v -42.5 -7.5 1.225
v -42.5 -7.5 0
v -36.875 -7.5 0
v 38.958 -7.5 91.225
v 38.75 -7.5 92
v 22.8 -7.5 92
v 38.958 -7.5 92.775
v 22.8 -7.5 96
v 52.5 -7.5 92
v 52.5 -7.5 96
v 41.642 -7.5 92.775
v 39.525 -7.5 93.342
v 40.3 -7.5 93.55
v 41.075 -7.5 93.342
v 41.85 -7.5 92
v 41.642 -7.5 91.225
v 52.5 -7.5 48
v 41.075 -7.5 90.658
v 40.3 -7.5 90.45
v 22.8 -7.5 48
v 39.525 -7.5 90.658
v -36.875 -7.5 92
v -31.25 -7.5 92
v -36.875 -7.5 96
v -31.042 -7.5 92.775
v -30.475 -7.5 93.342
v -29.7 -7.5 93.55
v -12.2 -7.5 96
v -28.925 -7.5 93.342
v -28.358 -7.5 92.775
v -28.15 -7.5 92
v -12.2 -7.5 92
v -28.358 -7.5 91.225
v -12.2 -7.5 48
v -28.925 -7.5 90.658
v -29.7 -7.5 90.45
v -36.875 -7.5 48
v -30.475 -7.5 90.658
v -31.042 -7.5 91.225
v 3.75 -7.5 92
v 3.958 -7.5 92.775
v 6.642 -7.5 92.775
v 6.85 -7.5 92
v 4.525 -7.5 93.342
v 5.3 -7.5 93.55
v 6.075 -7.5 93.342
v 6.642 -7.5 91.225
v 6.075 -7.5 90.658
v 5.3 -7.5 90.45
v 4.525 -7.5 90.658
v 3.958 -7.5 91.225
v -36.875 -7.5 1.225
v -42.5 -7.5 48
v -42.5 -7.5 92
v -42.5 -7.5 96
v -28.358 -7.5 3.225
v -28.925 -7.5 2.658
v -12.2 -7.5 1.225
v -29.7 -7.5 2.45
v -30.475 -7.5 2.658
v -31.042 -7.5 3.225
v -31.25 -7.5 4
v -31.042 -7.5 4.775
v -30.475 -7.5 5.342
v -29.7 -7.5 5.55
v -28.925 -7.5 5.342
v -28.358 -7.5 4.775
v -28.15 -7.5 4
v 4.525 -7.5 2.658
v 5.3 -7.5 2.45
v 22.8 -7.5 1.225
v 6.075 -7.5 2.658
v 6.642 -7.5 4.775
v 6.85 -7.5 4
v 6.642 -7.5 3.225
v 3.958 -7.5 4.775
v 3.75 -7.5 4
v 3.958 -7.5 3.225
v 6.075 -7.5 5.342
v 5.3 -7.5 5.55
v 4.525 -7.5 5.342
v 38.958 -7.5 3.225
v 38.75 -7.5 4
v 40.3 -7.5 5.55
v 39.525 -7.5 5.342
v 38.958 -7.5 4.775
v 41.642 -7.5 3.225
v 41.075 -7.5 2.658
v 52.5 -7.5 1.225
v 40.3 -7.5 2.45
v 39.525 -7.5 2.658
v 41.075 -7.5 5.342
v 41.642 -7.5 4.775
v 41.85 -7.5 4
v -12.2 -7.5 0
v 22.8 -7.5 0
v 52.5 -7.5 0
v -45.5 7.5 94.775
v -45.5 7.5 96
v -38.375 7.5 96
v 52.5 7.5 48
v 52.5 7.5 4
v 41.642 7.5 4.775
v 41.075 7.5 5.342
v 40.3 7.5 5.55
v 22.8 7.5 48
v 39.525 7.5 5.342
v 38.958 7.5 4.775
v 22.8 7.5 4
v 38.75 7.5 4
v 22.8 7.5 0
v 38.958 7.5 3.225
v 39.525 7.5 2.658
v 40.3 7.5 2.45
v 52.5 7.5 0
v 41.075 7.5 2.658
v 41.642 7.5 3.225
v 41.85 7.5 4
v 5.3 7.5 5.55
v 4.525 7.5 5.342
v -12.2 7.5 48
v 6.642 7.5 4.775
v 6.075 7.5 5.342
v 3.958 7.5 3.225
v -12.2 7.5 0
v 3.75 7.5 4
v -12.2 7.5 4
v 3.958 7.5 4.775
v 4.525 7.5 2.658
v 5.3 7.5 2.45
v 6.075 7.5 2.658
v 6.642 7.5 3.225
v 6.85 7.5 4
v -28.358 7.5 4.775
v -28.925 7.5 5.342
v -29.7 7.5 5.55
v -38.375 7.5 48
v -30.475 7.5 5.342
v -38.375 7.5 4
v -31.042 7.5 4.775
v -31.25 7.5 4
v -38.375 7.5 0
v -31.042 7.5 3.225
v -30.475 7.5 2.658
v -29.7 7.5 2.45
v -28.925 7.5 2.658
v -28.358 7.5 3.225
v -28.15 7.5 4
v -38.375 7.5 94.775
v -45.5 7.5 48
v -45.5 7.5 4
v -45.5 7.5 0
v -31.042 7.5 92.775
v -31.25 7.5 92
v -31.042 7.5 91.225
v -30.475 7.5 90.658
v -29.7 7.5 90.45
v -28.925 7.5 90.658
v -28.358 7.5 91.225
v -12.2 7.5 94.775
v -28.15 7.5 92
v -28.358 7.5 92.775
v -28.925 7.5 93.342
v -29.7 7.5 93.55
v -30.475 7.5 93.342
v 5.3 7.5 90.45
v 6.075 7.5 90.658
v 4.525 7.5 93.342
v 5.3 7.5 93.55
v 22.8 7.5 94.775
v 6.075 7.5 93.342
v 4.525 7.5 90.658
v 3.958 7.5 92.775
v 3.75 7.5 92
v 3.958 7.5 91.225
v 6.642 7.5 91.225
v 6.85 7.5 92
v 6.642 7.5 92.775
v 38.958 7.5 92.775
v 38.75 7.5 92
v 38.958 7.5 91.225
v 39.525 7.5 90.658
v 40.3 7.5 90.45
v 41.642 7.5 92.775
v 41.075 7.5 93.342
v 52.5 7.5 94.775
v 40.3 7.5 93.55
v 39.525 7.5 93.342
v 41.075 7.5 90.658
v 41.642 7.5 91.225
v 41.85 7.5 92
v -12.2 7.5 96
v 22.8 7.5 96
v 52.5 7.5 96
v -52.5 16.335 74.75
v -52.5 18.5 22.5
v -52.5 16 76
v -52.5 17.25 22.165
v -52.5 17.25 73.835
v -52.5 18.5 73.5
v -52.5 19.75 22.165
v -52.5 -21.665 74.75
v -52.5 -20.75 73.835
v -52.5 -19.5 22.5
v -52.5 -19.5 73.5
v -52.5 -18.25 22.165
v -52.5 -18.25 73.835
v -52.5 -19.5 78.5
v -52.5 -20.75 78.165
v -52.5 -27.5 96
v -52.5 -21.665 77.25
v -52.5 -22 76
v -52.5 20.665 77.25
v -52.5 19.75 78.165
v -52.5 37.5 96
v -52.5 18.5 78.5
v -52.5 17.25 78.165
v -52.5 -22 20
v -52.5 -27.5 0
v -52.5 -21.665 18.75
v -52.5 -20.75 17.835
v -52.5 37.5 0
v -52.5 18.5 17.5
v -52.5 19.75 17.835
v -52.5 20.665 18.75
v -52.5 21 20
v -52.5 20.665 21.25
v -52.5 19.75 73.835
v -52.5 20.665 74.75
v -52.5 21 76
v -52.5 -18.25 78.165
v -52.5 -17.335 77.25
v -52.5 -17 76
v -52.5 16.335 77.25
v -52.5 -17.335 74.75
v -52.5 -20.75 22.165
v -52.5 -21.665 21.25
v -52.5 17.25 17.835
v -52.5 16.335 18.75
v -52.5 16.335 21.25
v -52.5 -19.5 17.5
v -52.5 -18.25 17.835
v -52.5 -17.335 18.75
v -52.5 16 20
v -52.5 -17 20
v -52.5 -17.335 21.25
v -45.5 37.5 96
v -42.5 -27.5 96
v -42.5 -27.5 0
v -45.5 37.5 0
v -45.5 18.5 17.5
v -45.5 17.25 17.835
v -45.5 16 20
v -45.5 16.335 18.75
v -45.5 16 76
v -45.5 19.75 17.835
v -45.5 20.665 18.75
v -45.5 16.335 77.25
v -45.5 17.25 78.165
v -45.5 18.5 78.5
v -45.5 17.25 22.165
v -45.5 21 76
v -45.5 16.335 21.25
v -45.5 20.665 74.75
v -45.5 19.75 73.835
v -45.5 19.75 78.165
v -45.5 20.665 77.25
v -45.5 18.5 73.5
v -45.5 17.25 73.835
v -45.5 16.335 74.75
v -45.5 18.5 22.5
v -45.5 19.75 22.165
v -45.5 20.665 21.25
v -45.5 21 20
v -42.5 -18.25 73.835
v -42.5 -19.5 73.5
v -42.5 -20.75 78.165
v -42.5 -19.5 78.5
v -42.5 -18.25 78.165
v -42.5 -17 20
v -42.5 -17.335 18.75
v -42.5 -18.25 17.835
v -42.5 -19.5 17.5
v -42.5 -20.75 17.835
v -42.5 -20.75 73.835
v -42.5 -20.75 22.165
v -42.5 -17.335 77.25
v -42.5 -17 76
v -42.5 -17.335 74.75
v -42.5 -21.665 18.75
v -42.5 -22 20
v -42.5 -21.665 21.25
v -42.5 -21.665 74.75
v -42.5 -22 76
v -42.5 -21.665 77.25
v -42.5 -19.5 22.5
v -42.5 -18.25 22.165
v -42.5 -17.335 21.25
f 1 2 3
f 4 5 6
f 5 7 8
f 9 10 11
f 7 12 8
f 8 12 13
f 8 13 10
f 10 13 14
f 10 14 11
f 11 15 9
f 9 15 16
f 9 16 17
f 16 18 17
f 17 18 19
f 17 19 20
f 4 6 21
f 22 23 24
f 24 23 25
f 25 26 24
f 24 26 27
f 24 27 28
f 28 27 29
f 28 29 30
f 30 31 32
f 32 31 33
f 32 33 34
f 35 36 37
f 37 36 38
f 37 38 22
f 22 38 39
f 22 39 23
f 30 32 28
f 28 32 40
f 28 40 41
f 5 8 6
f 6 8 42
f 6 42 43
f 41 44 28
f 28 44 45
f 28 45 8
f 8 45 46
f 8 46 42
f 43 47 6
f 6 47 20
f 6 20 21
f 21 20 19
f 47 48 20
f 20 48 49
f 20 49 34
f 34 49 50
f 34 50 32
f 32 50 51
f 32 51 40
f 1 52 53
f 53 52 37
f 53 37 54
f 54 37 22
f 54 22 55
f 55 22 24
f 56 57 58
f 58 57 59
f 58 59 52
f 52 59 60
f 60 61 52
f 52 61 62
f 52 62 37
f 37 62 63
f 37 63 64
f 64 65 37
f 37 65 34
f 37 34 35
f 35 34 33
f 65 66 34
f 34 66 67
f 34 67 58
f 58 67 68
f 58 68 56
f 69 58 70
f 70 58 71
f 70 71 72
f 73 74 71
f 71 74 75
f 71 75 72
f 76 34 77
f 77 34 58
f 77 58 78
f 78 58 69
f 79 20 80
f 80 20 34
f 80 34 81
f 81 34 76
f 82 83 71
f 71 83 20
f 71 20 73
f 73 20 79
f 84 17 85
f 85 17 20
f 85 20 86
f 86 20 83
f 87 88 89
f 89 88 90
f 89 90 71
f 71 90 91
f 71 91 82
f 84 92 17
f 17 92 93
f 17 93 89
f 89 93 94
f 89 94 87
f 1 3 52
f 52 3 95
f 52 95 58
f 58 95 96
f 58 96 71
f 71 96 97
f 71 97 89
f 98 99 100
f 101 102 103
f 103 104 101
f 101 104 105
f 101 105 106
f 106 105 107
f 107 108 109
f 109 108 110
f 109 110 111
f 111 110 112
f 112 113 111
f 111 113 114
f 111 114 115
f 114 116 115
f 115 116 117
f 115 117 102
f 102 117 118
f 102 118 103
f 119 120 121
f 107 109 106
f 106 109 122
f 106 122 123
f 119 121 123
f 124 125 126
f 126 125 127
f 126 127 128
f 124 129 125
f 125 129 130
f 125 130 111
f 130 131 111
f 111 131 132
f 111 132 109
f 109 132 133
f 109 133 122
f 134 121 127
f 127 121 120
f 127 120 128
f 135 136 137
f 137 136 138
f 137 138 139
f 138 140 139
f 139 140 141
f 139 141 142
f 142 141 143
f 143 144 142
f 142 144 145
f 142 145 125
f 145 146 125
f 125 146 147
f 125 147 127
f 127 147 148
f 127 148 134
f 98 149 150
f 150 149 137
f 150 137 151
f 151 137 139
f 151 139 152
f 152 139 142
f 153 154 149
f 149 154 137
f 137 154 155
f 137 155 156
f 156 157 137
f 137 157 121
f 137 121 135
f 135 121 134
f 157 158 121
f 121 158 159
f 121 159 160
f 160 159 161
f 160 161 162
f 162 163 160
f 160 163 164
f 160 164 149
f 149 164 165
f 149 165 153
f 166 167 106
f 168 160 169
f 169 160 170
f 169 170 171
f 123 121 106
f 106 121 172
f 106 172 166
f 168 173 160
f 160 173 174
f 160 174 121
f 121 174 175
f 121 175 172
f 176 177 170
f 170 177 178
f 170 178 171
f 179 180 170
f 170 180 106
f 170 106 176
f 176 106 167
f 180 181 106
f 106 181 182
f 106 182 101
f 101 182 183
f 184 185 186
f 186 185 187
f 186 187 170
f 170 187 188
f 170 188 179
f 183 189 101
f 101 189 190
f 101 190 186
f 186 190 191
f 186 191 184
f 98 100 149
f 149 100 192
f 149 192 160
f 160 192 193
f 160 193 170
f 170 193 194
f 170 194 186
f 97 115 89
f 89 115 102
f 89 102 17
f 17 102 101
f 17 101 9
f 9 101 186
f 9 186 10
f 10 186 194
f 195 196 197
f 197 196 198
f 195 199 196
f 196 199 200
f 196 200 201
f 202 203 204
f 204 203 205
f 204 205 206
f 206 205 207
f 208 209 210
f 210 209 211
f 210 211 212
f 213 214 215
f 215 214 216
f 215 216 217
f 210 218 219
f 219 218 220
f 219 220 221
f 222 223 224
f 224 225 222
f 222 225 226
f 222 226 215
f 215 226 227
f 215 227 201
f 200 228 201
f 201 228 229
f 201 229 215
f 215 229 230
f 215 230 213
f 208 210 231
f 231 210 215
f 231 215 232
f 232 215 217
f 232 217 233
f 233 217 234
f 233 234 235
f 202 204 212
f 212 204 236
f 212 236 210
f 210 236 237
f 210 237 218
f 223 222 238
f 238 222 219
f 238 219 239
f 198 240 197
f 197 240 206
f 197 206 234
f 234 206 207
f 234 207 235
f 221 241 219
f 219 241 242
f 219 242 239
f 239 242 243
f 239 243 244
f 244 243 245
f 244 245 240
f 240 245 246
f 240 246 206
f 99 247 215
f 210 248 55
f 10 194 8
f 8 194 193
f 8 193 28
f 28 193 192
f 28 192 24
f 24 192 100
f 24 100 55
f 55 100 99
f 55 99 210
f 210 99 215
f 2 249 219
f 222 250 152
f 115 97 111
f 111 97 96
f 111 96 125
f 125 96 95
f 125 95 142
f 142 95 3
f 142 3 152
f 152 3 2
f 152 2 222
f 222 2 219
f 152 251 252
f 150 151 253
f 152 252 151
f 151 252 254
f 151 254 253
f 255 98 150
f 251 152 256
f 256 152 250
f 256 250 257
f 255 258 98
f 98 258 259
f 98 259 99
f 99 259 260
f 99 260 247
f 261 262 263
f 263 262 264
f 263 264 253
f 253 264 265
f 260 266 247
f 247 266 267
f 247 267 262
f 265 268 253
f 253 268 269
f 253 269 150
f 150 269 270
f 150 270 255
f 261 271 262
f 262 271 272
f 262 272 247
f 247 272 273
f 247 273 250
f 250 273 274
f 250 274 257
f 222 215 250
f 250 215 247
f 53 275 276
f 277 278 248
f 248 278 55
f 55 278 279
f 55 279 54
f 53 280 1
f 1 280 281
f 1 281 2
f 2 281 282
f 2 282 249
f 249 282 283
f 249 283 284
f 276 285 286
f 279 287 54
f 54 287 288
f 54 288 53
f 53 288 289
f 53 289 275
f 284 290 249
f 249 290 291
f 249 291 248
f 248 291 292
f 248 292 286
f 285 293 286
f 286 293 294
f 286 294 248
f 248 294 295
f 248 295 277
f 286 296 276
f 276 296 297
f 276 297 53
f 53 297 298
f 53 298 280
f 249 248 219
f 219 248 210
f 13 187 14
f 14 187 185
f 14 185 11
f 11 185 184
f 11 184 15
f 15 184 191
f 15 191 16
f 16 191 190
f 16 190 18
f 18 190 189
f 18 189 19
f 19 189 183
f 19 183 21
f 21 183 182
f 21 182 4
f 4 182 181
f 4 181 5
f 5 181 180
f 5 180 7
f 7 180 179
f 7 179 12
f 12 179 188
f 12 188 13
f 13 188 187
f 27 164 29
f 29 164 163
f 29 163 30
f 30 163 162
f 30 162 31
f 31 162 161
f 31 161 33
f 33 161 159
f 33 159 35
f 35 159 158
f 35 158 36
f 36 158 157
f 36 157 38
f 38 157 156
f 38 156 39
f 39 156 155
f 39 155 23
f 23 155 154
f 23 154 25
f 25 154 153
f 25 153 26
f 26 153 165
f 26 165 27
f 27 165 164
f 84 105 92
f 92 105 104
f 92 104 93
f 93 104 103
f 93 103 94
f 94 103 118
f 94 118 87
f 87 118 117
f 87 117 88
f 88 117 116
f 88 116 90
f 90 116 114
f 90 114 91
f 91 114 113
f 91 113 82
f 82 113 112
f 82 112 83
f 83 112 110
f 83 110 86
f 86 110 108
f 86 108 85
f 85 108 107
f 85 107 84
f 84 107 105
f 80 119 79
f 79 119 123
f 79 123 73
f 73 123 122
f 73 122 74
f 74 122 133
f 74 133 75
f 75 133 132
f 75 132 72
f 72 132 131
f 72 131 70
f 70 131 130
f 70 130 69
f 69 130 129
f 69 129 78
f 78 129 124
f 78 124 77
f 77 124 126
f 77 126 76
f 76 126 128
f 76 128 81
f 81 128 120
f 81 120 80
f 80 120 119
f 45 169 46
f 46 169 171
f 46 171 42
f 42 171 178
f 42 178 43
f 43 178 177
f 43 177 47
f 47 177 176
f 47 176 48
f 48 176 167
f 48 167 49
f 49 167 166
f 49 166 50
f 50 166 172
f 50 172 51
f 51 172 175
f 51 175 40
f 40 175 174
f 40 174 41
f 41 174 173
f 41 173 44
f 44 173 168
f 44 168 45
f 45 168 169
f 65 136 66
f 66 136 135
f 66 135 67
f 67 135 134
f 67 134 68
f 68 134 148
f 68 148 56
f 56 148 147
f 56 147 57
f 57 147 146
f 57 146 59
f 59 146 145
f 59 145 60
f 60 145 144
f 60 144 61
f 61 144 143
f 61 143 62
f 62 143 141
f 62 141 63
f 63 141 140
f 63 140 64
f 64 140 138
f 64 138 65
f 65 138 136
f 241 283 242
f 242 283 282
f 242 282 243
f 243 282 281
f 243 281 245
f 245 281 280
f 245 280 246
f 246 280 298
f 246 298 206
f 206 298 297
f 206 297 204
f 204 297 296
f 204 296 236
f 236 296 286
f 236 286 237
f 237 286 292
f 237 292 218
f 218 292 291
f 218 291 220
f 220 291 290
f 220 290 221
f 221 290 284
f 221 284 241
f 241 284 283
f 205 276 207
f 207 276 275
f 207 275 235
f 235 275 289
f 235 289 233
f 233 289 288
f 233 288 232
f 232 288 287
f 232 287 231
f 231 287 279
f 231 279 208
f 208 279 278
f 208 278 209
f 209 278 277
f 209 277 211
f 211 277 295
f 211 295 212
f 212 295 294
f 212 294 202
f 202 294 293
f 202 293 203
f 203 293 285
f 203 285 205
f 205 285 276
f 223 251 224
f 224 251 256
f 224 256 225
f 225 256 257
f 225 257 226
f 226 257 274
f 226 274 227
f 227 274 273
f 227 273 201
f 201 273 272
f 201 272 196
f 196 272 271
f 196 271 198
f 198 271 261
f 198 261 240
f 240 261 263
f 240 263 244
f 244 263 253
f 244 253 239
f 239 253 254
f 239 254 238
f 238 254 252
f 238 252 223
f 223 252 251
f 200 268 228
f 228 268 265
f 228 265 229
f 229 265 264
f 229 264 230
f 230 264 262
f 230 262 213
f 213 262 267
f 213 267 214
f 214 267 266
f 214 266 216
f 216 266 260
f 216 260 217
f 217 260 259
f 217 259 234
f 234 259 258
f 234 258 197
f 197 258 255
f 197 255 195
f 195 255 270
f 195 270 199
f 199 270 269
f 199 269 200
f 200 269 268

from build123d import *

# Parameters (mm, degrees)
SKIZZE1_W                       = 105
SKIZZE1_H                       = 15
AUFSATZ_LINEAR_AUSTRAGEN1_DEPTH = 96
SKIZZE3_W                       = 7
SKIZZE3_H                       = 96
AUFSATZ_LINEAR_AUSTRAGEN2_DEPTH = 30
SKIZZE4_W                       = 10
SKIZZE4_H                       = 96
AUFSATZ_LINEAR_AUSTRAGEN3_DEPTH = 20
SKIZZE5_R                       = 1.55
SCHNITT_LINEAR_AUSTRAGEN1_DEPTH = 20
SKIZZE6_R                       = 2.5
SCHNITT_LINEAR_AUSTRAGEN2_DEPTH = 20


with BuildPart() as part:
    # Skizze1 → Aufsatz-Linear austragen1 (new body)
    with BuildSketch(Plane.XY):
        Rectangle(SKIZZE1_W, SKIZZE1_H)
    extrude(amount=AUFSATZ_LINEAR_AUSTRAGEN1_DEPTH)

    # Skizze3 → Aufsatz-Linear austragen2 (add)
    with BuildSketch(Plane(origin=(0, 7.5, 0), x_dir=(1, 0, 0), z_dir=(0, 1, 0))):
        with Locations((-49, -48)):
            Rectangle(SKIZZE3_W, SKIZZE3_H)
    extrude(amount=AUFSATZ_LINEAR_AUSTRAGEN2_DEPTH)

    # Skizze4 → Aufsatz-Linear austragen3 (add)
    with BuildSketch(Plane.XZ.offset(7.5)):
        with Locations((-47.5, 48)):
            Rectangle(SKIZZE4_W, SKIZZE4_H)
    extrude(amount=AUFSATZ_LINEAR_AUSTRAGEN3_DEPTH)

    # Skizze5 → Schnitt-Linear austragen1 (cut)
    with BuildSketch(Plane(origin=(0, 7.5, 0), x_dir=(1, 0, 0), z_dir=(0, 1, 0))):
        with Locations(Location((40.3, -92, 0), (0, 0, 270))):
            Circle(SKIZZE5_R)
        with Locations(Location((40.3, -4, 0), (0, 0, 270))):
            Circle(SKIZZE5_R)
        with Locations(Location((5.3, -4, 0), (0, 0, 270))):
            Circle(SKIZZE5_R)
        with Locations(Location((5.3, -92, 0), (0, 0, 270))):
            Circle(SKIZZE5_R)
        with Locations(Location((-29.7, -4, 0), (0, 0, 270))):
            Circle(SKIZZE5_R)
        with Locations(Location((-29.7, -92, 0), (0, 0, 270))):
            Circle(SKIZZE5_R)
    extrude(amount=-SCHNITT_LINEAR_AUSTRAGEN1_DEPTH, mode=Mode.SUBTRACT)

    # Skizze6 → Schnitt-Linear austragen2 (cut)
    with BuildSketch(Plane(origin=(-42.5, 0, 0), x_dir=(0, 0, -1), z_dir=(1, 0, 0))):
        with Locations((-76, -19.5)):
            Circle(SKIZZE6_R)
        with Locations((-20, -19.5)):
            Circle(SKIZZE6_R)
    schnitt_linear_austragen2 = extrude(amount=-SCHNITT_LINEAR_AUSTRAGEN2_DEPTH, mode=Mode.SUBTRACT)

    # Spiegeln1: Schnitt-Linear austragen2 across plane
    add(schnitt_linear_austragen2.mirror(Plane.ZX.offset(-0.5)), mode=Mode.SUBTRACT)


solid = part.part
